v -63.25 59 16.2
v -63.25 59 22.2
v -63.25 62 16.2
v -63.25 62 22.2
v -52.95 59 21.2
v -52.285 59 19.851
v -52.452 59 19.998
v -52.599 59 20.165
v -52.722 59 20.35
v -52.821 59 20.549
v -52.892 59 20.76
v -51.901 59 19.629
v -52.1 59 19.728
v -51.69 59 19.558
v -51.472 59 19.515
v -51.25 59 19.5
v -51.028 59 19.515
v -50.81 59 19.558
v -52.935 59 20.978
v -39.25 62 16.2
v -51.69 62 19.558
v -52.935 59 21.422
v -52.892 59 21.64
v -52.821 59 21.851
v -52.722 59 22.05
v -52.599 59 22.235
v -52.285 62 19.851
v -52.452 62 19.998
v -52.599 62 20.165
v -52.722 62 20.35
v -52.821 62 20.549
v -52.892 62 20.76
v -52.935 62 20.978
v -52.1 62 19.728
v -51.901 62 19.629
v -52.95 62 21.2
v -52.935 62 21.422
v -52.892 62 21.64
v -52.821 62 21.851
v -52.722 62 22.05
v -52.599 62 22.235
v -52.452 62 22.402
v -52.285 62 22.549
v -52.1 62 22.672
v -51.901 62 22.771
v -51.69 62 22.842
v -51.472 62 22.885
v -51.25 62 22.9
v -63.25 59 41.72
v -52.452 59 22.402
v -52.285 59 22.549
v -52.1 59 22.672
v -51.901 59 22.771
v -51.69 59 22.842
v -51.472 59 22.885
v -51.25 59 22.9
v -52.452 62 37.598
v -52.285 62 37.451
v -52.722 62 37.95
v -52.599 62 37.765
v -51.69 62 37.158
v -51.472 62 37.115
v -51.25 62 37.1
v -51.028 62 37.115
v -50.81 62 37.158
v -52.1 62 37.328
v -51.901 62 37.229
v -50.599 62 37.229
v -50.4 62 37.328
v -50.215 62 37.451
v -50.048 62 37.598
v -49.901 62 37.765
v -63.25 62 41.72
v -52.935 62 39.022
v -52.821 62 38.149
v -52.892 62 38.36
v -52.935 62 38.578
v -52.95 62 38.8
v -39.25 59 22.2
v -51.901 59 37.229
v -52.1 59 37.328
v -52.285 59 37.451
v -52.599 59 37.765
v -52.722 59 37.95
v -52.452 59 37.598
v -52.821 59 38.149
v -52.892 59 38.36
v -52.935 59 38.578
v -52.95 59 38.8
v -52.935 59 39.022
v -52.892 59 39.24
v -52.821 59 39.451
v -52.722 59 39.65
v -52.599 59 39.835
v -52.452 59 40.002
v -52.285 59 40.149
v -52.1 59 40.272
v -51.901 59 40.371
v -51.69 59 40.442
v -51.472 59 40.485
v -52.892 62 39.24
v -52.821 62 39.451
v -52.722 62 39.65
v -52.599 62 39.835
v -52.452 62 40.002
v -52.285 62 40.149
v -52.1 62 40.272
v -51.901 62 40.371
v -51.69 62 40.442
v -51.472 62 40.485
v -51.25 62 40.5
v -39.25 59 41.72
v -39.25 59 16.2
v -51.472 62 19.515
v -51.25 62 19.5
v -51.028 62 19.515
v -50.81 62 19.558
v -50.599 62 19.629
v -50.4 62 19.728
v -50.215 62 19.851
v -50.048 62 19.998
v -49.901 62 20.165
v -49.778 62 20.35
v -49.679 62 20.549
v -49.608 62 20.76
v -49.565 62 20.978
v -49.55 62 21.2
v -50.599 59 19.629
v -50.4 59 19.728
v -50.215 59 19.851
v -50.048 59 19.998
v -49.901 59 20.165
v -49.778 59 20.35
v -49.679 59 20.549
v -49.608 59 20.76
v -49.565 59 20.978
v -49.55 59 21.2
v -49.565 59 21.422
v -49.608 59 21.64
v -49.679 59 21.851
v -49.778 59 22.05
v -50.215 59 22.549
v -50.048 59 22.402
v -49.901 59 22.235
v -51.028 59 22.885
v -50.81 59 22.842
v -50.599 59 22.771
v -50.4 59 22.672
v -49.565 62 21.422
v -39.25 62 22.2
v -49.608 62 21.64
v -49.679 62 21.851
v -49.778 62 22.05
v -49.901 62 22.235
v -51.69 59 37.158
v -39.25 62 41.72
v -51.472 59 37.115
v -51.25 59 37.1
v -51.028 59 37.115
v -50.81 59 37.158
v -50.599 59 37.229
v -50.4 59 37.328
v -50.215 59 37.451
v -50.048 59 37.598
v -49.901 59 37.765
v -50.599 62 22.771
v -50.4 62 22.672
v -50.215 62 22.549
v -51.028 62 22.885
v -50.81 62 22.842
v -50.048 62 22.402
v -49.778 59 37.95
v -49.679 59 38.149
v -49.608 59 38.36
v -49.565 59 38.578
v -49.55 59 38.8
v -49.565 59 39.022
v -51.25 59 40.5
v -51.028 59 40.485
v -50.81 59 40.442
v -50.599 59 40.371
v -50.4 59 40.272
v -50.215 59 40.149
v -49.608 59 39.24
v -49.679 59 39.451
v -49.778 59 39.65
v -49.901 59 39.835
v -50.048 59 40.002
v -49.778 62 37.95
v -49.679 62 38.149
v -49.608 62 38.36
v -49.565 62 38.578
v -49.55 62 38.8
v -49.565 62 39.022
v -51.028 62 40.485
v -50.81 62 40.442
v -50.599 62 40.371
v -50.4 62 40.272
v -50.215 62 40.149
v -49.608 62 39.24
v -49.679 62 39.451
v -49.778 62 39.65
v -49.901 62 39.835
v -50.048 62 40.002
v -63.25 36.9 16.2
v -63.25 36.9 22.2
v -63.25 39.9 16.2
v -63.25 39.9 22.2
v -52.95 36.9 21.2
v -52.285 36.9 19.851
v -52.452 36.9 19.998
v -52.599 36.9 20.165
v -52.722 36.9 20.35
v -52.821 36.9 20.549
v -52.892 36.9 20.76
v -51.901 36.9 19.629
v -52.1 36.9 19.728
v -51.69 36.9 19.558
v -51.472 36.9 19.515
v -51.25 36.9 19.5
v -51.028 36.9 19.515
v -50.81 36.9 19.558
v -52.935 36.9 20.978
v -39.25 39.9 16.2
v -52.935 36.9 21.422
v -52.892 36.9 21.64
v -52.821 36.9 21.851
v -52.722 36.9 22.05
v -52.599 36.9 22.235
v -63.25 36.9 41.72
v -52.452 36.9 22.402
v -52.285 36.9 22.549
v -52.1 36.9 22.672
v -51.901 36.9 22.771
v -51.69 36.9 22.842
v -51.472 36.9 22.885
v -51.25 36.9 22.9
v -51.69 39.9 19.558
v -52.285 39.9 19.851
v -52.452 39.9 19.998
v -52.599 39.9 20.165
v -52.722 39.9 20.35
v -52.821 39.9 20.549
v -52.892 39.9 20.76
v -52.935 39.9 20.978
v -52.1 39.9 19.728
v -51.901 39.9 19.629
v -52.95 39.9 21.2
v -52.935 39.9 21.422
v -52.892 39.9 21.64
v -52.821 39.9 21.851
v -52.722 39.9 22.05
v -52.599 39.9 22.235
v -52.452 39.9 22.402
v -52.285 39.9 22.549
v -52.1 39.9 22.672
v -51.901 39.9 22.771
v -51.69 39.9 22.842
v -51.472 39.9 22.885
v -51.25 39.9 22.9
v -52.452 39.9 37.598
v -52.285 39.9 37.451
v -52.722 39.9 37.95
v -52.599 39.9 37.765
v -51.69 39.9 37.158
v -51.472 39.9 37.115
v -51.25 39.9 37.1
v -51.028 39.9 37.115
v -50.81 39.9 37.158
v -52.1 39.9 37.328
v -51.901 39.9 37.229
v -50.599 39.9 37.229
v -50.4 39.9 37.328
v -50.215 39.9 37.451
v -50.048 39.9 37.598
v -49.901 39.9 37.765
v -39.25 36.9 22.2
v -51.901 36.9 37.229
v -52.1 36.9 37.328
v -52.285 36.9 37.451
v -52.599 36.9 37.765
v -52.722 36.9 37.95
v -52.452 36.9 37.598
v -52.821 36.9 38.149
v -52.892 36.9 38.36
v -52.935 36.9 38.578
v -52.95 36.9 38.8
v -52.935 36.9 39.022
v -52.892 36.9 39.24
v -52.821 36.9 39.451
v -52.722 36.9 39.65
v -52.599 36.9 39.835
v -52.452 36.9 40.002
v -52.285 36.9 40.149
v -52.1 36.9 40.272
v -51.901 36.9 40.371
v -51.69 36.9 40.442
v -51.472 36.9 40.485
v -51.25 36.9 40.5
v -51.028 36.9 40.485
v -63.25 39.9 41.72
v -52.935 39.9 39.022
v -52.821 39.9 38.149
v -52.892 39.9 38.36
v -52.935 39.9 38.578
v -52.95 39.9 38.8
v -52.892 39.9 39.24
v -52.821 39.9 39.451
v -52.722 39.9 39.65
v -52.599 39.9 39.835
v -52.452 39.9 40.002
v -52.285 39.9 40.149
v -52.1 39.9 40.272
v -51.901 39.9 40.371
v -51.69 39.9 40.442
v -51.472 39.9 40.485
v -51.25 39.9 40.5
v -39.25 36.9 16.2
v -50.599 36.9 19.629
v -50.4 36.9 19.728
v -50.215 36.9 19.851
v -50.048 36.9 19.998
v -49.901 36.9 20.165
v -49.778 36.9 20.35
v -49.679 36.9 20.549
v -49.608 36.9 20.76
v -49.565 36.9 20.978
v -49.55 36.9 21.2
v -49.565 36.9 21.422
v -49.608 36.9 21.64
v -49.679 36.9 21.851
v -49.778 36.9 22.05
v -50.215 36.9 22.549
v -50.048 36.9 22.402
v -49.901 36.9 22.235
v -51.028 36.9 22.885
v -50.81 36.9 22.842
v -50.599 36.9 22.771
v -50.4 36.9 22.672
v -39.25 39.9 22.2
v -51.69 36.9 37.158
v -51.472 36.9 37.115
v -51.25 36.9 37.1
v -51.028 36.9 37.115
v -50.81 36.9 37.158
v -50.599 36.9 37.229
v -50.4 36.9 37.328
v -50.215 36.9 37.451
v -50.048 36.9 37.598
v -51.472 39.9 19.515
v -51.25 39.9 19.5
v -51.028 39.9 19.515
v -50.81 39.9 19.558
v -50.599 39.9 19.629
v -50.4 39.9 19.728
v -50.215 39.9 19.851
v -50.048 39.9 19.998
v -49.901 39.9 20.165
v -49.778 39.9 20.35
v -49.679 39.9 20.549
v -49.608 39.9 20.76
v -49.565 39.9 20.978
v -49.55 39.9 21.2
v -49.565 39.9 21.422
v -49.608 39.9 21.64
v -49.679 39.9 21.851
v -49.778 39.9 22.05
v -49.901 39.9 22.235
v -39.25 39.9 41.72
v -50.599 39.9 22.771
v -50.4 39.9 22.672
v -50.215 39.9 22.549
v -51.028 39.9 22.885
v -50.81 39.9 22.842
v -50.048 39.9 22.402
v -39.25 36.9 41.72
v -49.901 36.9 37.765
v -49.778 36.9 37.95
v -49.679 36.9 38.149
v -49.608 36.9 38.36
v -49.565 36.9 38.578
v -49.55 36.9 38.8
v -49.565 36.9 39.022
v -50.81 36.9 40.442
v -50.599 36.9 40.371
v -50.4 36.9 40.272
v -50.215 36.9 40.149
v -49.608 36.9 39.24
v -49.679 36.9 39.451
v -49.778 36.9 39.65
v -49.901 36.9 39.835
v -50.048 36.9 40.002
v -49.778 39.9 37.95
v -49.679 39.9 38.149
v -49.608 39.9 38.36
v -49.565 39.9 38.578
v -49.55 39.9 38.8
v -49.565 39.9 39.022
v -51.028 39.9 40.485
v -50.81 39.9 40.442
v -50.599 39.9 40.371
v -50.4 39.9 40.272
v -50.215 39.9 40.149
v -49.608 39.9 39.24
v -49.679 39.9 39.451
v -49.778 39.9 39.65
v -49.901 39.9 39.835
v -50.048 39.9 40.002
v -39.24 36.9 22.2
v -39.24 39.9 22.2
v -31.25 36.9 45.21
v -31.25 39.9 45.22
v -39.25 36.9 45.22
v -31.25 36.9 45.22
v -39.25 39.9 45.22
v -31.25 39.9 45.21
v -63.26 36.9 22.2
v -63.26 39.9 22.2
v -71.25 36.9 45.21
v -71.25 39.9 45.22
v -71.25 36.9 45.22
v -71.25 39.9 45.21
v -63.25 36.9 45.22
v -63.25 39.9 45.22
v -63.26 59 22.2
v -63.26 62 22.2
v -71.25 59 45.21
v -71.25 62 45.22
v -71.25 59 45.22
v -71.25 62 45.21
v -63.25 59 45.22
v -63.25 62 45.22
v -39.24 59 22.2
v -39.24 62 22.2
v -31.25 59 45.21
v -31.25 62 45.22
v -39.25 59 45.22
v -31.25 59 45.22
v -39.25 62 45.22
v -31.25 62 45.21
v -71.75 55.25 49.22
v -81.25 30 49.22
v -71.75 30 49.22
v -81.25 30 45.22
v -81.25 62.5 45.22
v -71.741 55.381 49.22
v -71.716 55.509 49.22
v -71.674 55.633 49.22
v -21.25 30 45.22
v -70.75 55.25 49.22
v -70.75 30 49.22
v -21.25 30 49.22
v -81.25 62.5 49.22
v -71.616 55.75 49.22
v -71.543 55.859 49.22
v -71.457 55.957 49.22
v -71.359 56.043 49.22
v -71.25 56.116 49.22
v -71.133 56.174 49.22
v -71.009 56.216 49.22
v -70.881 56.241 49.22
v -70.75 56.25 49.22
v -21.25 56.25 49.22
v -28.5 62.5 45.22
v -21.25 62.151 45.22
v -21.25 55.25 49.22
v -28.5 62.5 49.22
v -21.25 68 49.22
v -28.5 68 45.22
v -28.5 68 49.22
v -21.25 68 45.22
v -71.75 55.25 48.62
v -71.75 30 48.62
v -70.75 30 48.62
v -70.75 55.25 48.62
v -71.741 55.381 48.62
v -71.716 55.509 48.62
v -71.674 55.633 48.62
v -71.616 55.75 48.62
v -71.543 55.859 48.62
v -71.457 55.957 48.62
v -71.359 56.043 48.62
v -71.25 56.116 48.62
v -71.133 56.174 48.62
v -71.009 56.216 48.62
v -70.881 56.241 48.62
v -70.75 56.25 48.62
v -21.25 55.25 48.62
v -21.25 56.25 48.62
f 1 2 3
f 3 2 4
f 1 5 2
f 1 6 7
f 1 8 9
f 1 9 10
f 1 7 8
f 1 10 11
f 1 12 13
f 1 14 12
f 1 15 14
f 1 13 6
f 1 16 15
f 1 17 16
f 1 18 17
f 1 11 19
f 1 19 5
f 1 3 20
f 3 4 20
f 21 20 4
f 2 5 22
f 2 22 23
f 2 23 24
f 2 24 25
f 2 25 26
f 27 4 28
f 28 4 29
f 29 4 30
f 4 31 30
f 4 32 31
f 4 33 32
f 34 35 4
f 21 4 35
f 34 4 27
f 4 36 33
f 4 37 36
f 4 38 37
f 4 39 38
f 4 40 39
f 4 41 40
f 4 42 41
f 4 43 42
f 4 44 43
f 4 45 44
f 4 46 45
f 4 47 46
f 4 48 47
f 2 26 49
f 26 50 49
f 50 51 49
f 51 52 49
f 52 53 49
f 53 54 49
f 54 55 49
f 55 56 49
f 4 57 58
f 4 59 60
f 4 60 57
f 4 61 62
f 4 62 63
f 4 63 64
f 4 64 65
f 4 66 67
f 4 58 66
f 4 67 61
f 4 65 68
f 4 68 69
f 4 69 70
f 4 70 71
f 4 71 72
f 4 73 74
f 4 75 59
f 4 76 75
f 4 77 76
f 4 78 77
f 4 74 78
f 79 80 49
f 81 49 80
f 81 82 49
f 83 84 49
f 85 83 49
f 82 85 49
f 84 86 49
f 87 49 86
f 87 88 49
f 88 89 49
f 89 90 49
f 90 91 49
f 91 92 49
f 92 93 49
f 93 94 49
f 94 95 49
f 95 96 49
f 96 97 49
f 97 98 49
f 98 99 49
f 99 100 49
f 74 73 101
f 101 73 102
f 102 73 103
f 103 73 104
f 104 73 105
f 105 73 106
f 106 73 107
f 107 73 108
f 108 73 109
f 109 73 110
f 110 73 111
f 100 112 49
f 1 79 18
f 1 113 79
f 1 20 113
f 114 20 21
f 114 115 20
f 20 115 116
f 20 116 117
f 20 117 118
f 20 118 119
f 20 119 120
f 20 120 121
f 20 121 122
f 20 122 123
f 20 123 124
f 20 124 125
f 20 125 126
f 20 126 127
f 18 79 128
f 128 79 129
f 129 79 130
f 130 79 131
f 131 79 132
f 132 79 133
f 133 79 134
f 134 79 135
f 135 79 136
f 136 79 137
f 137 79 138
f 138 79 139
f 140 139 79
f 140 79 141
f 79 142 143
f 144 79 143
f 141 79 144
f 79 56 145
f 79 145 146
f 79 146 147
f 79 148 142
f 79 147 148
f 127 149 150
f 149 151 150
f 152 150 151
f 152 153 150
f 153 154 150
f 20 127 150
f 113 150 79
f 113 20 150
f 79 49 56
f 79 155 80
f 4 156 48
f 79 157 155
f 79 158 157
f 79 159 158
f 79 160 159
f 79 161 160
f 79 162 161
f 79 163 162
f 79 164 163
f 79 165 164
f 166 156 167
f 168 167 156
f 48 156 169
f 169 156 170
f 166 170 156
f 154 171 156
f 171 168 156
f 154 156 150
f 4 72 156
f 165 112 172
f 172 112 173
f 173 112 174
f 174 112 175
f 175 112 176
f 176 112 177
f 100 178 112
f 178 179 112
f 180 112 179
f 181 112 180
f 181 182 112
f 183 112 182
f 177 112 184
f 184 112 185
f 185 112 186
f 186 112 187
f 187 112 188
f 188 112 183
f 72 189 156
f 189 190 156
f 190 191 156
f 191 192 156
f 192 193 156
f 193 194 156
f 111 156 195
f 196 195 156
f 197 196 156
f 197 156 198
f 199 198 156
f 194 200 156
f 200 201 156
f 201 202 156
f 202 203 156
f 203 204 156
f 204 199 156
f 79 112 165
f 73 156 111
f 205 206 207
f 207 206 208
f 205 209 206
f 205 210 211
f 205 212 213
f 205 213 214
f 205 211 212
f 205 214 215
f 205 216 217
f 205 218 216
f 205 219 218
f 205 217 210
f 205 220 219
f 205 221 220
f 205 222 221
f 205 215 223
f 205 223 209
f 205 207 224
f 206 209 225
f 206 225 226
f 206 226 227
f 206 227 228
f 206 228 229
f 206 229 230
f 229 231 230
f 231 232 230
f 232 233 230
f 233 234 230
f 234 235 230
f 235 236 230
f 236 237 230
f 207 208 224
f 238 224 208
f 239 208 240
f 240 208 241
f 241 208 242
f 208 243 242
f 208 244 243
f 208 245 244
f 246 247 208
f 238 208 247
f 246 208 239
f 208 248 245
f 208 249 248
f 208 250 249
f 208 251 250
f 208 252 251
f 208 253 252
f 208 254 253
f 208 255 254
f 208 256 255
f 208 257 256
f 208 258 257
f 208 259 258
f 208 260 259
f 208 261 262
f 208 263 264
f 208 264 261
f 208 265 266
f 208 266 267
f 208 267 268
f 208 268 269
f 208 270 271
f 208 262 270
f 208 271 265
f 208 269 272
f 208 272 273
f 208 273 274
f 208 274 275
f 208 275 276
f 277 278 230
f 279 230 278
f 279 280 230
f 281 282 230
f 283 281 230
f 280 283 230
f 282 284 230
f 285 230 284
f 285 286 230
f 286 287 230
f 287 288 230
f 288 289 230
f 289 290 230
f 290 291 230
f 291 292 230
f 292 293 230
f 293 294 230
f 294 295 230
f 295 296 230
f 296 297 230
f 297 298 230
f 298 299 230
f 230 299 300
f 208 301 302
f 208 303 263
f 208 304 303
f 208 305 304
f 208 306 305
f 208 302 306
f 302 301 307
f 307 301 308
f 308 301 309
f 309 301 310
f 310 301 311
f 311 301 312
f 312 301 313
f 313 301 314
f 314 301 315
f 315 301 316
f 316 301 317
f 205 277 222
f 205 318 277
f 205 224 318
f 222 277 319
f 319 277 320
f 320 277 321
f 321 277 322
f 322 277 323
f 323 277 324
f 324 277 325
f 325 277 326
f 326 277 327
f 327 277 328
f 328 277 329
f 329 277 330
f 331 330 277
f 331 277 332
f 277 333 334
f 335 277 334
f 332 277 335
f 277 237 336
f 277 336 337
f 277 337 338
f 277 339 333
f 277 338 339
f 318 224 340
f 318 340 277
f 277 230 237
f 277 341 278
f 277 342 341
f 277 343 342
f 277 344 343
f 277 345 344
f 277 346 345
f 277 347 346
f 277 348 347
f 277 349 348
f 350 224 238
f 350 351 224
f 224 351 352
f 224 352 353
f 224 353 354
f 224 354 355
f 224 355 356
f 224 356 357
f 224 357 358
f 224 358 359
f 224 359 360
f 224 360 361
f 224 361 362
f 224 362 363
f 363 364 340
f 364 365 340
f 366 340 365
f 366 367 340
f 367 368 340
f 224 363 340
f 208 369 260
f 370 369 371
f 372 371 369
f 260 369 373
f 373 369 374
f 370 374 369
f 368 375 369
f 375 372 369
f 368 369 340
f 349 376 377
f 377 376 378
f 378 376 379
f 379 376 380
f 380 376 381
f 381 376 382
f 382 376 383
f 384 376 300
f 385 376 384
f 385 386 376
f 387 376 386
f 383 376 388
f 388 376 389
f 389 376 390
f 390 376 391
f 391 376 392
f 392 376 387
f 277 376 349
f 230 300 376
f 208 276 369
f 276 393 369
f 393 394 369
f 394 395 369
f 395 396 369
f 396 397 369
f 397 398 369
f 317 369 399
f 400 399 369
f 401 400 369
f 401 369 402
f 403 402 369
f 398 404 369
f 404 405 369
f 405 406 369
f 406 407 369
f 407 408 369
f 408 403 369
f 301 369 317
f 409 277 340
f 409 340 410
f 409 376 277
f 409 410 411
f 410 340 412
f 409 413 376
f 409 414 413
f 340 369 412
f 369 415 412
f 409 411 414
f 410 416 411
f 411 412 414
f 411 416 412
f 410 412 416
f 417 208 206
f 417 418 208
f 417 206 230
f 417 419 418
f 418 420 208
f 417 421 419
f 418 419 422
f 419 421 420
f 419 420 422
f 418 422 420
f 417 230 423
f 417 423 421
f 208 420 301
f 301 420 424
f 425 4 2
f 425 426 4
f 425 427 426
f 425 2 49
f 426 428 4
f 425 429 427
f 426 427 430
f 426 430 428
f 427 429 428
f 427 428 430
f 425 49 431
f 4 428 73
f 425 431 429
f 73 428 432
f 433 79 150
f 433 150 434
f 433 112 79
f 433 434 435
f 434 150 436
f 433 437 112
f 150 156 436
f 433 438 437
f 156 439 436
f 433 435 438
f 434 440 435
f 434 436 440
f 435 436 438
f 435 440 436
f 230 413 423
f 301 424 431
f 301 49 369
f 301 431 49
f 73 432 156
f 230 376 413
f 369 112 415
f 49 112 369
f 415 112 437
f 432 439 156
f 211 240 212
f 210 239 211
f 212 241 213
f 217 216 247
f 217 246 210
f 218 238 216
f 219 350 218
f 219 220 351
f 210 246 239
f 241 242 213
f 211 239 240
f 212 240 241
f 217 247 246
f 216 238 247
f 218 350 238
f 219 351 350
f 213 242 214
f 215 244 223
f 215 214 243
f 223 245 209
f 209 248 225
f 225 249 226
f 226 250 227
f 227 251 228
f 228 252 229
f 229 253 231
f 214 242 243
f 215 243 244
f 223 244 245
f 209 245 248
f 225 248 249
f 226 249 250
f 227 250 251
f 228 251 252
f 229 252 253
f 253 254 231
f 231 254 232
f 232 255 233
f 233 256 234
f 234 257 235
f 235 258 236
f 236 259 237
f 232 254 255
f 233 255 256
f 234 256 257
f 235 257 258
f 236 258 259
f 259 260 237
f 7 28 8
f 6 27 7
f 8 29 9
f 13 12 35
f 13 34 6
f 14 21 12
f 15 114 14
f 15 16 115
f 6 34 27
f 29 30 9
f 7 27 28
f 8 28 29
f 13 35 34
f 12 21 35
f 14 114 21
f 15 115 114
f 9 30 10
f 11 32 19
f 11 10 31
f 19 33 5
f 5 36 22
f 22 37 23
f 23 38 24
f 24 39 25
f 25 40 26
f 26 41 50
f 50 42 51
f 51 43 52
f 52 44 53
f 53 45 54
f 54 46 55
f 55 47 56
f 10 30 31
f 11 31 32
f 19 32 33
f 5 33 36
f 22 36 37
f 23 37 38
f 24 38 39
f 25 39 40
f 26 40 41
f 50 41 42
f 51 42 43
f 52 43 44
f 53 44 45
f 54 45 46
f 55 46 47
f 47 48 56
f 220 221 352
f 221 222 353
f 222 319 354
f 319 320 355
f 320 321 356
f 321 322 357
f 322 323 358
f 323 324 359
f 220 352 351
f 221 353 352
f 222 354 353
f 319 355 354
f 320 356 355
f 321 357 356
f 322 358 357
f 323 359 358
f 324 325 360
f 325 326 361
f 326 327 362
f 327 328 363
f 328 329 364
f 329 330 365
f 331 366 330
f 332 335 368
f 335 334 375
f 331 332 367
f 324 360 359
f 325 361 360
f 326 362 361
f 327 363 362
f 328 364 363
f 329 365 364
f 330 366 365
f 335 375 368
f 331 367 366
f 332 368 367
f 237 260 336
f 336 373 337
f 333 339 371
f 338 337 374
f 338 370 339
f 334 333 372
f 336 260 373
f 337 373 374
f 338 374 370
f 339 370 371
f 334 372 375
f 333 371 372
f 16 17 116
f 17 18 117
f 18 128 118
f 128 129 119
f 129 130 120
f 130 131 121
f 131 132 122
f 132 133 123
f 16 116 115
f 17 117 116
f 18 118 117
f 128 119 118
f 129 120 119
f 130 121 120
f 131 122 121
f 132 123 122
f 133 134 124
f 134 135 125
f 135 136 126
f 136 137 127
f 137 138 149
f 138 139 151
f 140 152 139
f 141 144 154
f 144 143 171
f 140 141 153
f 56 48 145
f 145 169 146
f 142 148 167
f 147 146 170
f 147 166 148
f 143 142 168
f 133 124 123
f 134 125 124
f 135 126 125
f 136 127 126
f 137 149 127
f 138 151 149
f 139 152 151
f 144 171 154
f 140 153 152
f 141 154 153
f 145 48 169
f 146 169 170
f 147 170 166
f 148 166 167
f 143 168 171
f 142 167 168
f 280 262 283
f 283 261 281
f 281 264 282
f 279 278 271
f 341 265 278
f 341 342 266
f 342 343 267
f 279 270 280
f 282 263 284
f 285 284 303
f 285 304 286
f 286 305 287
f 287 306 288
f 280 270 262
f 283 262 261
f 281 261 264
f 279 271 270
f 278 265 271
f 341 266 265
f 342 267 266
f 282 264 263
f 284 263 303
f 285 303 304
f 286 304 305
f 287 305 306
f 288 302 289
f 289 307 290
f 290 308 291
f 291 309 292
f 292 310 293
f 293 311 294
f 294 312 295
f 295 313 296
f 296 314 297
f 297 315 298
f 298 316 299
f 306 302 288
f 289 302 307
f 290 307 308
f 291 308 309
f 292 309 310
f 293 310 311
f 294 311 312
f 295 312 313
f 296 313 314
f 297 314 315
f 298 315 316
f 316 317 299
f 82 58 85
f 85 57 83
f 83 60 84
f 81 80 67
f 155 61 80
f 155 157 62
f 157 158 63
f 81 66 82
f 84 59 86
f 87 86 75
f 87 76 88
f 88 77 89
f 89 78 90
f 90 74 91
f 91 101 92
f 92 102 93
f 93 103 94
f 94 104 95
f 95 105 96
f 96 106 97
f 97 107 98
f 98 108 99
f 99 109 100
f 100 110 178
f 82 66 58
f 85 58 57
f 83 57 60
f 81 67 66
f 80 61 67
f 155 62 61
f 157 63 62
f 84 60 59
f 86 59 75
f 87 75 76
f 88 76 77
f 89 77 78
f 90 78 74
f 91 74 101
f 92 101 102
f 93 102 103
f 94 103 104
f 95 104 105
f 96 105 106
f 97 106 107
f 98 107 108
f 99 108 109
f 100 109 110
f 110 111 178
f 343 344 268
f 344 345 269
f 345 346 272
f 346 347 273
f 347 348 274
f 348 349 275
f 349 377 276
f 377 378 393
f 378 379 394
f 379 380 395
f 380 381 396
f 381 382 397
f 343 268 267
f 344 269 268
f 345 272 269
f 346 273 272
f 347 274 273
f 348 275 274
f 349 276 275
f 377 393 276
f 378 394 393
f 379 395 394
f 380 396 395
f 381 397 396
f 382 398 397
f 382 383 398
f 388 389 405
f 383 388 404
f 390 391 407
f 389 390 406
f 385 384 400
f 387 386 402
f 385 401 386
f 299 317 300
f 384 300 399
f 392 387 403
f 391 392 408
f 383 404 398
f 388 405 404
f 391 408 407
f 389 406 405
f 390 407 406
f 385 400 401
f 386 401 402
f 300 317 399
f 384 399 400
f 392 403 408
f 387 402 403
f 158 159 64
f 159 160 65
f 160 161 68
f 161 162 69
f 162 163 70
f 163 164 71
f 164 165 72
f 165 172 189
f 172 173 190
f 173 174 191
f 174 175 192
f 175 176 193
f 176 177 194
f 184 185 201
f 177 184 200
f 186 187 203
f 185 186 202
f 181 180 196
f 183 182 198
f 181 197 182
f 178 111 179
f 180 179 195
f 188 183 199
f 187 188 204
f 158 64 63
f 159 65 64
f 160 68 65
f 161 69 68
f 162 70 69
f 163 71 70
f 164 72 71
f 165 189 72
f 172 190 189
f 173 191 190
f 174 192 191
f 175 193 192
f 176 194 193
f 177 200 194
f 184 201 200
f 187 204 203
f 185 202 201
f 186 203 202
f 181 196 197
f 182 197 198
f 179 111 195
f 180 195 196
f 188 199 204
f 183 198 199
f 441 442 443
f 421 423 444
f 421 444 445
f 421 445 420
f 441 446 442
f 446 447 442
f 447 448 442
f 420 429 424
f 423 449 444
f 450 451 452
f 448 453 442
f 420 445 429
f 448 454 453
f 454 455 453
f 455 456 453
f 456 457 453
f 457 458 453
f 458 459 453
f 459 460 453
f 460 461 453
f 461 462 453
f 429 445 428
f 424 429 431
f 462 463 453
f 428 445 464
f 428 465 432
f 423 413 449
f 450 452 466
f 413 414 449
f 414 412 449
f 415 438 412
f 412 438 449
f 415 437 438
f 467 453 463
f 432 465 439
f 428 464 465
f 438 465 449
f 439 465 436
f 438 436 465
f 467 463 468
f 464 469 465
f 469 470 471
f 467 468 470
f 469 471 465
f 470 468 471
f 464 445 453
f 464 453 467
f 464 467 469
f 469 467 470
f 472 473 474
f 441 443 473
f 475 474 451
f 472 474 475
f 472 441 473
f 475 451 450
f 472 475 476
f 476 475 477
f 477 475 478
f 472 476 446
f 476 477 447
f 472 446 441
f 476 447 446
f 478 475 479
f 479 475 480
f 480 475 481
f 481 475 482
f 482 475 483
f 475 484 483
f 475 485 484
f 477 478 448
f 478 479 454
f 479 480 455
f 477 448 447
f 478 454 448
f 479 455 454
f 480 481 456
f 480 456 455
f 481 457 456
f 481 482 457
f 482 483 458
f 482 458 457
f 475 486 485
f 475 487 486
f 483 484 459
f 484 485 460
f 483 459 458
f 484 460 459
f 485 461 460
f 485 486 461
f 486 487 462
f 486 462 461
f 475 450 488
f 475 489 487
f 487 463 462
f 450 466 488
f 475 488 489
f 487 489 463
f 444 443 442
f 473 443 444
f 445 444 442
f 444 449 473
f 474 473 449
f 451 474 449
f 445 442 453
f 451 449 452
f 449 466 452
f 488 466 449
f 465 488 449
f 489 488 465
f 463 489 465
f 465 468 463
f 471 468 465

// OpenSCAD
// Quick print to validate the motor mount before printing the whole chassis.
// One mount (left side) on a patch of plate, with the wheel well edge as in the real part.
include <chassis.scad>
coupon_only = true;     // suppress the full chassis at top level
show_ghosts = false;    // and the preview ghosts
module coupon() {
    intersection() {
        chassis();
        // a box around the left motor mount: a bit of plate each way, and the well edge
        translate([motor_x + tt_hole_x - 30, motor_y - 32, 0]) cube([60, 40, 100]);
    }
}
coupon();
